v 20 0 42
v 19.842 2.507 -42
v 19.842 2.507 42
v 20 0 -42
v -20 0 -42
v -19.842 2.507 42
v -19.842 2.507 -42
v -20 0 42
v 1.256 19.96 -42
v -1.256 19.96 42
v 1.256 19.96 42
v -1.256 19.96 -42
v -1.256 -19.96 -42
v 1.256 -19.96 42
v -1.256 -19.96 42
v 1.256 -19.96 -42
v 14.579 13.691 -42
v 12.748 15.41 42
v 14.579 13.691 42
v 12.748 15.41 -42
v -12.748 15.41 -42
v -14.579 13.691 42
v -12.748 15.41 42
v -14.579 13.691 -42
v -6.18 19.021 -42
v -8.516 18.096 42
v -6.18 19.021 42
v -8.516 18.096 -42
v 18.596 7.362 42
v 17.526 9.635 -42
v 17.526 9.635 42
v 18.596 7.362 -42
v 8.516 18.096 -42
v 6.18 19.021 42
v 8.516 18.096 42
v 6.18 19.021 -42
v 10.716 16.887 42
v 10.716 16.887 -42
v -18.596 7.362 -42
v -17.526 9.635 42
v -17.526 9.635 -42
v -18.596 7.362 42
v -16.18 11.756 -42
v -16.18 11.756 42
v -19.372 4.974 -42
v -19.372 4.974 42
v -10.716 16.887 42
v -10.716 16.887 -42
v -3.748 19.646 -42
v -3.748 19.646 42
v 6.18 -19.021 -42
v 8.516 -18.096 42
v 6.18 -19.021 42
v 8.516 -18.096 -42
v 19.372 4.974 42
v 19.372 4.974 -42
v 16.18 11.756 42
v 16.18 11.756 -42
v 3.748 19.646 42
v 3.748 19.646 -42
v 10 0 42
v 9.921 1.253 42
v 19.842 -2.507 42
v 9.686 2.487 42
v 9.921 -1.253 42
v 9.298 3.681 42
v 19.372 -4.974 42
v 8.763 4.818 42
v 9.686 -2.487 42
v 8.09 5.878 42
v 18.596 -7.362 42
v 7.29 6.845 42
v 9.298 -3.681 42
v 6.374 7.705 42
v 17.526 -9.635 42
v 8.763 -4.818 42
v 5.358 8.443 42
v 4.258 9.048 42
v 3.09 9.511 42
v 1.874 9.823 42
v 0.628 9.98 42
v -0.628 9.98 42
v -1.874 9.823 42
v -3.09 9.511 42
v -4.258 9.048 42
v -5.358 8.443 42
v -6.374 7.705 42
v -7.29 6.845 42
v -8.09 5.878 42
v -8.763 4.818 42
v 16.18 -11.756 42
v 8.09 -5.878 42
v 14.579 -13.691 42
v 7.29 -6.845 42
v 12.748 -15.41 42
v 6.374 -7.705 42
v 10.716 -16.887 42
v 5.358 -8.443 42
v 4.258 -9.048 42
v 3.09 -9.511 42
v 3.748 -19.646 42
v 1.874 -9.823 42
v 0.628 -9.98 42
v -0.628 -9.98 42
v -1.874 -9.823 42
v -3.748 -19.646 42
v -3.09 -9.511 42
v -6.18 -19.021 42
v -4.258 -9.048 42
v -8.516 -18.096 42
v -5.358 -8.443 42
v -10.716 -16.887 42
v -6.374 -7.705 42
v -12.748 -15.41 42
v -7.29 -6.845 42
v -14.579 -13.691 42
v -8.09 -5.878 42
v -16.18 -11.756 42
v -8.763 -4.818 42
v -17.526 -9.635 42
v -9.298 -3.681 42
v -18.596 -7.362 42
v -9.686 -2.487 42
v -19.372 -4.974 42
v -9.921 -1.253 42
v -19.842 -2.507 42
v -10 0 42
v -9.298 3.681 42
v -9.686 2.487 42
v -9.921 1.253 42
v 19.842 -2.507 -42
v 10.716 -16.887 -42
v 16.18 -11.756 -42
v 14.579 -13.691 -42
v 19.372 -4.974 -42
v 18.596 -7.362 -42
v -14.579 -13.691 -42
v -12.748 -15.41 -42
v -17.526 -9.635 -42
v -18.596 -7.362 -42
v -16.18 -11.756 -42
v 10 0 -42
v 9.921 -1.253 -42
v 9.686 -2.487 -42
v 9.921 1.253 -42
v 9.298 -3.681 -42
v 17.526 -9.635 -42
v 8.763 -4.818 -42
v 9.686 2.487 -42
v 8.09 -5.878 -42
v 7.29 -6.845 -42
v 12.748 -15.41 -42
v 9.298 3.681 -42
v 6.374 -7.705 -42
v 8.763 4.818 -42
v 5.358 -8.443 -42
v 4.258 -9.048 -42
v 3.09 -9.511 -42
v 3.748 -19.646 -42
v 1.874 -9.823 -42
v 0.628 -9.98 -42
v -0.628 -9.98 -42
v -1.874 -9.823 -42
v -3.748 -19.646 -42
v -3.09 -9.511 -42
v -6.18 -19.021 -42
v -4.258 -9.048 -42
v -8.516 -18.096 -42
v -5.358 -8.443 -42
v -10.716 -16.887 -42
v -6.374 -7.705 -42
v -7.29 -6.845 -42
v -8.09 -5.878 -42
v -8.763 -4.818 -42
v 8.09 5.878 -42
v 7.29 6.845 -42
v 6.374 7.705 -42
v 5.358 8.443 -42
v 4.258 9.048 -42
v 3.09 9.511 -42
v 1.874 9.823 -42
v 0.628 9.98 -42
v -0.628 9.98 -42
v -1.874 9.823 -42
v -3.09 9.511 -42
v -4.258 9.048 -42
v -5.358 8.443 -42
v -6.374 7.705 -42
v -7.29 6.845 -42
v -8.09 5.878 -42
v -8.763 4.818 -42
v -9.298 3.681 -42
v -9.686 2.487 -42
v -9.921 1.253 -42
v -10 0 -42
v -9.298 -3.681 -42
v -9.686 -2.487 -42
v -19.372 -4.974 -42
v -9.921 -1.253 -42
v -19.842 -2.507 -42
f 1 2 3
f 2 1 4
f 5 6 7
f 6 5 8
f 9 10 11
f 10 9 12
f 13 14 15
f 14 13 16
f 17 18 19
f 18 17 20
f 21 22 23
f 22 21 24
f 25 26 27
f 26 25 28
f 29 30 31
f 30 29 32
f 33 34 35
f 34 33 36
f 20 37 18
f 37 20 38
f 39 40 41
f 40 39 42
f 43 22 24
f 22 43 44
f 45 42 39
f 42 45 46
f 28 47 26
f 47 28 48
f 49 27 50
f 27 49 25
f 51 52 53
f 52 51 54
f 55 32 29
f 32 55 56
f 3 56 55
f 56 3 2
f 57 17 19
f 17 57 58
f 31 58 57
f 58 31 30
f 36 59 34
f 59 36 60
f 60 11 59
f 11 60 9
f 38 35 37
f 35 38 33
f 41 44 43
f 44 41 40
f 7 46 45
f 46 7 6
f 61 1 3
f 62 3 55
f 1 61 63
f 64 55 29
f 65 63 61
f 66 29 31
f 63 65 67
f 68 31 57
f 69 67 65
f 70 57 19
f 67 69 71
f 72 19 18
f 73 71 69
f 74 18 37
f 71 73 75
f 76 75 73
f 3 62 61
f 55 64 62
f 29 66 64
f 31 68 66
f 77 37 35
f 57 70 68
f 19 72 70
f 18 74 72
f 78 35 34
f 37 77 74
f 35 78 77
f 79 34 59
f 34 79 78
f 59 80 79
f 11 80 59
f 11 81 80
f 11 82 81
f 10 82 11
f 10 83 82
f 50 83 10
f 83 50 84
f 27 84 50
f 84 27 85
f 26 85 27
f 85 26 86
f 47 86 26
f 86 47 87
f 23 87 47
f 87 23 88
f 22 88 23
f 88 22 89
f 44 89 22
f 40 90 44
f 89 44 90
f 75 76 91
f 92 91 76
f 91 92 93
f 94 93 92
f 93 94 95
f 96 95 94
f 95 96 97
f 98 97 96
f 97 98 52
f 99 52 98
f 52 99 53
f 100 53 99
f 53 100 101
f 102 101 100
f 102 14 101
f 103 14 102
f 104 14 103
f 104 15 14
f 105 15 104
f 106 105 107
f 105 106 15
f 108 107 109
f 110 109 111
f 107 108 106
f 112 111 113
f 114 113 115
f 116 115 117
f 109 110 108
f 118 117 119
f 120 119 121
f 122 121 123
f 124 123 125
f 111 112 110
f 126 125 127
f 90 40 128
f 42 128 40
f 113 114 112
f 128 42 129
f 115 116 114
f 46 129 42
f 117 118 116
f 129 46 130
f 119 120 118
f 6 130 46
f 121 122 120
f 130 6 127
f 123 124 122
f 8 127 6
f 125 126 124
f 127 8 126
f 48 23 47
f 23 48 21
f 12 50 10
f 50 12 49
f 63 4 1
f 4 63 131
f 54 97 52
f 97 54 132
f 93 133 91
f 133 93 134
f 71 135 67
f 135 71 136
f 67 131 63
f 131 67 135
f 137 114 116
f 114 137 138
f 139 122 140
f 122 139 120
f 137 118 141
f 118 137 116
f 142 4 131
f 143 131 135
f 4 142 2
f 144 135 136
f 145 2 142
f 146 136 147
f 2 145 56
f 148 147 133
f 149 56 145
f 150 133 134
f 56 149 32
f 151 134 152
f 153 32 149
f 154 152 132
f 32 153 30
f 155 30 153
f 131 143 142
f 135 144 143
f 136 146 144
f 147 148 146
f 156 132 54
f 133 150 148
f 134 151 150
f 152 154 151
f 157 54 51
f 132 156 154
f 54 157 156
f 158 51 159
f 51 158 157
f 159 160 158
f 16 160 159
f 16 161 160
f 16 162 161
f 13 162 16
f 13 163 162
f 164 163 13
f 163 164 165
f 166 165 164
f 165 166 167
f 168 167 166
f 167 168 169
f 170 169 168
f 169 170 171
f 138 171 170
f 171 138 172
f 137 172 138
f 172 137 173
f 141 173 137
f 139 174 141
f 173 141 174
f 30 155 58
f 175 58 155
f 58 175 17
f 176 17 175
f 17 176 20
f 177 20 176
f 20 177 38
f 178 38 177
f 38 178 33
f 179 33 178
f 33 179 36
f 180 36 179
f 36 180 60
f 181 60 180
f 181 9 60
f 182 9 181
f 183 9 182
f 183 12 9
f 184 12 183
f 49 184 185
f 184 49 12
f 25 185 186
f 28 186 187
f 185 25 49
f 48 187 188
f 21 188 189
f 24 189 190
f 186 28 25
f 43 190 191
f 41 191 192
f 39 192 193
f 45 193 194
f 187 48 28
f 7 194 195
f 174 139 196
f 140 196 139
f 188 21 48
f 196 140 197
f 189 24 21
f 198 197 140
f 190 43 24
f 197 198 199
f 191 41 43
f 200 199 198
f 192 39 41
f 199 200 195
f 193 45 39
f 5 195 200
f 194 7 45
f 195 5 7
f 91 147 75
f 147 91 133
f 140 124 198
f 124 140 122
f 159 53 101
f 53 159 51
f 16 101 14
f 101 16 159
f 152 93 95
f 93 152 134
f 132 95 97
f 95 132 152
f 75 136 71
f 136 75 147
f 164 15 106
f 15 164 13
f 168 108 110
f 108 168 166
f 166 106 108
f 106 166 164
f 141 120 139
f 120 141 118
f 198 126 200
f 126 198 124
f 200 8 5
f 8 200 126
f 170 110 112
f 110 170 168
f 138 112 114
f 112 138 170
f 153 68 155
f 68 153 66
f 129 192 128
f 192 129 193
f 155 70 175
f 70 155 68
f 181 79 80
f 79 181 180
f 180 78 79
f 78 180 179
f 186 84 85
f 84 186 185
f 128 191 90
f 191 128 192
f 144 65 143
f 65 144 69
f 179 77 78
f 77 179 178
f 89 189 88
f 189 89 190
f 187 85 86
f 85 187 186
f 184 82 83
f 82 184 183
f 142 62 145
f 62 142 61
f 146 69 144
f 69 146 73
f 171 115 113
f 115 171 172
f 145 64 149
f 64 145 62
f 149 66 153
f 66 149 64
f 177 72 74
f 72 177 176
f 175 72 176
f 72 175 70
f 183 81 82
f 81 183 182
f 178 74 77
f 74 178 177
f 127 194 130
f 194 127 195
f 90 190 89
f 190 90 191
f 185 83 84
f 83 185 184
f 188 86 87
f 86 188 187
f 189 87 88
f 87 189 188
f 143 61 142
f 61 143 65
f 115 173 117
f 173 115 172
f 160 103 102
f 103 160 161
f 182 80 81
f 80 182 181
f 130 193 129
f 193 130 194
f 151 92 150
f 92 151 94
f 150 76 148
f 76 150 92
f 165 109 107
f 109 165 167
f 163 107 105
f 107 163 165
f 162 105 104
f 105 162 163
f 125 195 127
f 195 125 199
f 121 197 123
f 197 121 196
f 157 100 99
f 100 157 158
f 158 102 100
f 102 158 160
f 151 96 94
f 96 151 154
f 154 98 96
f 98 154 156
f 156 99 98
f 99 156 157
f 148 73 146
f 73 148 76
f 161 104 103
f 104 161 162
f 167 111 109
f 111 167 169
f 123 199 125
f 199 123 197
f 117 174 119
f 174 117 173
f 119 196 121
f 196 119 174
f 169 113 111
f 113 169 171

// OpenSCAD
$fn = 50;


difference() {
	union() {
		translate(v = [0, 0, -42.0000000000]) {
			cylinder(h = 84, r = 20.0000000000);
		}
	}
	union() {
		translate(v = [0, 0, -100.0000000000]) {
			cylinder(h = 200, r = 10);
		}
	}
}
